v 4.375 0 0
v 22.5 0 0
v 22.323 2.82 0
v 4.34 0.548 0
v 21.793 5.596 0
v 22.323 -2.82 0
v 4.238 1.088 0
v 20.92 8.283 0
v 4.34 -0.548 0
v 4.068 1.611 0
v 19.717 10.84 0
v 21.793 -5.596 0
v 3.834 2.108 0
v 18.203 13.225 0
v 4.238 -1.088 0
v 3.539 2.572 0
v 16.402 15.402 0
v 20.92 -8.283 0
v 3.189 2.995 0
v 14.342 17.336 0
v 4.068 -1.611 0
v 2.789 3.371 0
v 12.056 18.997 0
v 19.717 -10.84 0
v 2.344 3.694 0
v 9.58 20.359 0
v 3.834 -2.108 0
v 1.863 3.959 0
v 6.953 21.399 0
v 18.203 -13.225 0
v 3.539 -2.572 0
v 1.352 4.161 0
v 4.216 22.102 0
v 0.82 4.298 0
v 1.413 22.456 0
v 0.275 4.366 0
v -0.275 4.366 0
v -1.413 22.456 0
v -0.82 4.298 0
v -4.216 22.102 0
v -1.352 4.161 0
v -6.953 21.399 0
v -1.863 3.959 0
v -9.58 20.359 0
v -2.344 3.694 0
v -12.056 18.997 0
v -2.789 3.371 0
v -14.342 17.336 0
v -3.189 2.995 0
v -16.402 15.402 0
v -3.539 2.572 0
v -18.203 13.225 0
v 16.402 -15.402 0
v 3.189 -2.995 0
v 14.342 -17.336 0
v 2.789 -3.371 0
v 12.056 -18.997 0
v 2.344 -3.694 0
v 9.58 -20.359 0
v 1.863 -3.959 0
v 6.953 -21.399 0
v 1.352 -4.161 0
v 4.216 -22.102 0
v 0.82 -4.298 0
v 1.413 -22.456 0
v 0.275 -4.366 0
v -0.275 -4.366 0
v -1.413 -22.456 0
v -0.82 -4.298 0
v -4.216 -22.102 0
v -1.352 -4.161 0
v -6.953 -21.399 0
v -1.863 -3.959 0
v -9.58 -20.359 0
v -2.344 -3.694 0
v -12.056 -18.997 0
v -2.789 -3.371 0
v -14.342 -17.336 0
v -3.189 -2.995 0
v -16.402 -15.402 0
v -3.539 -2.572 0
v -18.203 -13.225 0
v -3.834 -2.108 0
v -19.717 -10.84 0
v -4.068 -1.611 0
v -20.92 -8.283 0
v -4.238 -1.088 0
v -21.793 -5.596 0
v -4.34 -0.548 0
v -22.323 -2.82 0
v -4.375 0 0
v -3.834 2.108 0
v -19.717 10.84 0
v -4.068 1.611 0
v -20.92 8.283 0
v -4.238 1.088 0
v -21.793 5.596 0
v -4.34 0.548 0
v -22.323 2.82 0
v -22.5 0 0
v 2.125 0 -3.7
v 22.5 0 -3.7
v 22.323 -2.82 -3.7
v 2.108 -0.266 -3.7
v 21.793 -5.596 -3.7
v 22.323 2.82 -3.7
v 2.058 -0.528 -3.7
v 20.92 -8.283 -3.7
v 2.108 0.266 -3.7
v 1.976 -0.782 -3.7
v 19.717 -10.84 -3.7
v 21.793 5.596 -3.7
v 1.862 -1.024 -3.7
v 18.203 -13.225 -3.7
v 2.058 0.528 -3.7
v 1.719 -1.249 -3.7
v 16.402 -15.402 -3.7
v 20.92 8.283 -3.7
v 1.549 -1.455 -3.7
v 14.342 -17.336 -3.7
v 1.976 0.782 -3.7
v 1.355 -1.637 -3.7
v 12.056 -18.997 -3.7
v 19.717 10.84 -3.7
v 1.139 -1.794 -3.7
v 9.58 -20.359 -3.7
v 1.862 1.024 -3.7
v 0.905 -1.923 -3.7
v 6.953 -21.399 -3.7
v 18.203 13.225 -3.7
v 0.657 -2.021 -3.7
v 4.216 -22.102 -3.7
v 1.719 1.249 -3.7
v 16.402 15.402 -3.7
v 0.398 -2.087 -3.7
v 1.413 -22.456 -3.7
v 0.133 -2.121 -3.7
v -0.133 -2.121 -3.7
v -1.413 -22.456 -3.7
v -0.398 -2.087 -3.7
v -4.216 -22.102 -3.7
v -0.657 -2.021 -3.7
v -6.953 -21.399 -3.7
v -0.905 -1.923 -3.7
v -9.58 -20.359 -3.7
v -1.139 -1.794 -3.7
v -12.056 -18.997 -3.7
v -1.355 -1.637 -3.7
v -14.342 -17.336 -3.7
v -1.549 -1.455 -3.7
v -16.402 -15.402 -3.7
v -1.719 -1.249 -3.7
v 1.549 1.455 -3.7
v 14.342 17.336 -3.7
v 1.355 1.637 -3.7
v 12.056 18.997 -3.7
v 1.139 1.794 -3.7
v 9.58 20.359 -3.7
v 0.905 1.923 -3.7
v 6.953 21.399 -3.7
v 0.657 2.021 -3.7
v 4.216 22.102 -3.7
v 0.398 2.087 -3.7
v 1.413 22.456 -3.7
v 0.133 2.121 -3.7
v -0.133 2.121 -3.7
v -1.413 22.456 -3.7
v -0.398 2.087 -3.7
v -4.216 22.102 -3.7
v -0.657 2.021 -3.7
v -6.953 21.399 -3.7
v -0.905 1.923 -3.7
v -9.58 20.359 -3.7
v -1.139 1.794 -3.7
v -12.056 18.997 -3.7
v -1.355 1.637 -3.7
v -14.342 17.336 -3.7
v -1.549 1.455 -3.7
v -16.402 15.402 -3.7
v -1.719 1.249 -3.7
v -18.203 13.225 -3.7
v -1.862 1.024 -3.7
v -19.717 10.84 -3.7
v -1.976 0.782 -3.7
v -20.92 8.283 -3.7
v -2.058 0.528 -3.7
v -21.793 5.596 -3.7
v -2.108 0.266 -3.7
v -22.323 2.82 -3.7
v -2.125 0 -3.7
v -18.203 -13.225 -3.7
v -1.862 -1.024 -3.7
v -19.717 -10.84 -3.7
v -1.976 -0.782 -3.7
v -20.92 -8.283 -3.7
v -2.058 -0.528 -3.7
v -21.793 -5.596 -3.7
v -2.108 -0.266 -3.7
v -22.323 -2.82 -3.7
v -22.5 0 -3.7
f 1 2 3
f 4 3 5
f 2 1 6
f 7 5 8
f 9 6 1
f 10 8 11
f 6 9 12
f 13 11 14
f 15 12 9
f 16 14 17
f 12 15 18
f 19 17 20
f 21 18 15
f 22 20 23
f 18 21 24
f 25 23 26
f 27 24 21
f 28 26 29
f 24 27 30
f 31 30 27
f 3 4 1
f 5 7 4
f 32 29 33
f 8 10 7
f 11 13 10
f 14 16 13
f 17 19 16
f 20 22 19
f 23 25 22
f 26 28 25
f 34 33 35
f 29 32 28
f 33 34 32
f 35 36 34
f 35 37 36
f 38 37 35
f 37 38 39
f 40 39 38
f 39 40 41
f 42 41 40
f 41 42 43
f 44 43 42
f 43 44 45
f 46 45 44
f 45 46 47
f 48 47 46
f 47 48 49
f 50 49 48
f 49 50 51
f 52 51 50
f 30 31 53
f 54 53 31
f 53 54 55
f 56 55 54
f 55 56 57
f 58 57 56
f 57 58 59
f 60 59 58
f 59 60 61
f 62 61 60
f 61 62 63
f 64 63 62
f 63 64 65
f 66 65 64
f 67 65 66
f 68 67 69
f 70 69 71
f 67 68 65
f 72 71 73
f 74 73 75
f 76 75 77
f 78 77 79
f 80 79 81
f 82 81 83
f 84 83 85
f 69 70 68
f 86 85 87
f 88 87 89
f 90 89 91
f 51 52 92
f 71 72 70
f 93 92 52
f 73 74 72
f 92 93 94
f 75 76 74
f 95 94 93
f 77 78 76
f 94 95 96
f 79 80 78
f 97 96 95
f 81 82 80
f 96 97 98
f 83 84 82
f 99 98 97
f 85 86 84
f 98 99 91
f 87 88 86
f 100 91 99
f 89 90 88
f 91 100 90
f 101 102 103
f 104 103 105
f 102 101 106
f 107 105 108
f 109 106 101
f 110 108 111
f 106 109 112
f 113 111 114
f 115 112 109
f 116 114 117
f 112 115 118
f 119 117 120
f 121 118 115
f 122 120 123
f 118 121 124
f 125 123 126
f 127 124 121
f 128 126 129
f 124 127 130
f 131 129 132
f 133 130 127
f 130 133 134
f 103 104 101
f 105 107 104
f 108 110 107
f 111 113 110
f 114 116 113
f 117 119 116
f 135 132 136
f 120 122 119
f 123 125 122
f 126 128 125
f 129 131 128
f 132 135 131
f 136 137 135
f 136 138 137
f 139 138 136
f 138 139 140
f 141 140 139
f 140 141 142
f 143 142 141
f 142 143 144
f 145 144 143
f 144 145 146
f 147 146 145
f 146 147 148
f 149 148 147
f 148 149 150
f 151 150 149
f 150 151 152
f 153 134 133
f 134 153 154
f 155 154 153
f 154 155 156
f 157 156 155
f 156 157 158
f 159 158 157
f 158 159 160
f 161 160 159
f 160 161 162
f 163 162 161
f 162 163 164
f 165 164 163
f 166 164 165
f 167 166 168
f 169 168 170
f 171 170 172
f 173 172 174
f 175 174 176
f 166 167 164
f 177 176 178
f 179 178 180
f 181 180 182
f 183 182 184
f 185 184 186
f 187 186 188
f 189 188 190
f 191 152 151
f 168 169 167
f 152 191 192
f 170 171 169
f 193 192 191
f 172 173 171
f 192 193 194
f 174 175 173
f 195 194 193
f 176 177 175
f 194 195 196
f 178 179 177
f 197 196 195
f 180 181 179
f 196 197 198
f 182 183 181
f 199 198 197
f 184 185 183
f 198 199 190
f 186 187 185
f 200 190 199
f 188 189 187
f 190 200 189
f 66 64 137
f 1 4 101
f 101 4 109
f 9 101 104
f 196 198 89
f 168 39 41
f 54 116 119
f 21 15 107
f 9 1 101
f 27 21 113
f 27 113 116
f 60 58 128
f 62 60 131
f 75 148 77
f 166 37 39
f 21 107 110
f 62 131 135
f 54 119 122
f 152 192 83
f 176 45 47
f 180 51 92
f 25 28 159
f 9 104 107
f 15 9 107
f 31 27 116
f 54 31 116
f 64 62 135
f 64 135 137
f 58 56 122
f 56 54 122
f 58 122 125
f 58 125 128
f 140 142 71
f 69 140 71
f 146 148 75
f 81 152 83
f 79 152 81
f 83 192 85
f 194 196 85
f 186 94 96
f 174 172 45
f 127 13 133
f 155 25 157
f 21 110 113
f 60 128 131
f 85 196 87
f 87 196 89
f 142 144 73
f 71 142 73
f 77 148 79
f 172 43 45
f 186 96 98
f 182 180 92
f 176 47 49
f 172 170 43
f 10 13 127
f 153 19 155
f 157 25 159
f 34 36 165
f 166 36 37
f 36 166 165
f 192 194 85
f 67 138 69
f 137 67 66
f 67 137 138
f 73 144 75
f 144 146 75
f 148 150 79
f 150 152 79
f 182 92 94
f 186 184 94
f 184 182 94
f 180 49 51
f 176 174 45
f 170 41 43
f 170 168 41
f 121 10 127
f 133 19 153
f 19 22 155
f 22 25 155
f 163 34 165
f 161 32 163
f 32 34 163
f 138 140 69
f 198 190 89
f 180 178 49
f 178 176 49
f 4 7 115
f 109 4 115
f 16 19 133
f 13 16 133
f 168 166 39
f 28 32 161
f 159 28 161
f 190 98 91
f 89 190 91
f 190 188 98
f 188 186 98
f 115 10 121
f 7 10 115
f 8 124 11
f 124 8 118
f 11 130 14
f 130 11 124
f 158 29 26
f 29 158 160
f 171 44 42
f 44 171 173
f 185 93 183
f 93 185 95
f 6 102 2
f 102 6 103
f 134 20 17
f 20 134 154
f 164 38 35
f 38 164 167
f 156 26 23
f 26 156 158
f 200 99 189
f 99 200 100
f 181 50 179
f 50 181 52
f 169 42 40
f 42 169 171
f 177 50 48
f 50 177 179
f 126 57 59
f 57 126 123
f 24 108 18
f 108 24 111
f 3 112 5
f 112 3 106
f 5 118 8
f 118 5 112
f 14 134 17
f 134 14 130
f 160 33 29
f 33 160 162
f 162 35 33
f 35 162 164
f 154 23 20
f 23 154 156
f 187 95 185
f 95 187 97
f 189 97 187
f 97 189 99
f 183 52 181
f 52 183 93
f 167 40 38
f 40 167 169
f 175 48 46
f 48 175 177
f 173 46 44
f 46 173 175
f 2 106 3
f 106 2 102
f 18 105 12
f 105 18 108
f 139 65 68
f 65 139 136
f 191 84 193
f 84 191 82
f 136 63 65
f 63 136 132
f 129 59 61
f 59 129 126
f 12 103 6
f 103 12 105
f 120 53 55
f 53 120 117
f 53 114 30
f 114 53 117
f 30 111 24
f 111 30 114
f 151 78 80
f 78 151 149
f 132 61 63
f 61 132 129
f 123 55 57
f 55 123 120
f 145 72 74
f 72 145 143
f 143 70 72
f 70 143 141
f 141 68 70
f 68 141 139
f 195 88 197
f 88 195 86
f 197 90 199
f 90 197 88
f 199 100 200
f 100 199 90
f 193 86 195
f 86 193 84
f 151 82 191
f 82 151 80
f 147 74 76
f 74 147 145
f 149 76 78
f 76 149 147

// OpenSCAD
$fn = 50;


difference() {
	union() {
		translate(v = [0, 0, -3.7000000000]) {
			cylinder(h = 3.7000000000, r = 22.5000000000);
		}
	}
	union() {
		translate(v = [0, 0, 0]) {
			rotate(a = [0, 0, 0]) {
				difference() {
					union() {
						translate(v = [0, 0, -3.7000000000]) {
							cylinder(h = 3.7000000000, r = 2.0000000000);
						}
						translate(v = [0, 0, -3.7000000000]) {
							cylinder(h = 3.7000000000, r1 = 2.1250000000, r2 = 4.3750000000);
						}
						translate(v = [0, 0, -3.7000000000]) {
							cylinder(h = 3.7000000000, r = 2.1250000000);
						}
						translate(v = [0, 0, -3.7000000000]) {
							cylinder(h = 3.7000000000, r = 2.0000000000);
						}
					}
					union();
				}
			}
		}
	}
}
